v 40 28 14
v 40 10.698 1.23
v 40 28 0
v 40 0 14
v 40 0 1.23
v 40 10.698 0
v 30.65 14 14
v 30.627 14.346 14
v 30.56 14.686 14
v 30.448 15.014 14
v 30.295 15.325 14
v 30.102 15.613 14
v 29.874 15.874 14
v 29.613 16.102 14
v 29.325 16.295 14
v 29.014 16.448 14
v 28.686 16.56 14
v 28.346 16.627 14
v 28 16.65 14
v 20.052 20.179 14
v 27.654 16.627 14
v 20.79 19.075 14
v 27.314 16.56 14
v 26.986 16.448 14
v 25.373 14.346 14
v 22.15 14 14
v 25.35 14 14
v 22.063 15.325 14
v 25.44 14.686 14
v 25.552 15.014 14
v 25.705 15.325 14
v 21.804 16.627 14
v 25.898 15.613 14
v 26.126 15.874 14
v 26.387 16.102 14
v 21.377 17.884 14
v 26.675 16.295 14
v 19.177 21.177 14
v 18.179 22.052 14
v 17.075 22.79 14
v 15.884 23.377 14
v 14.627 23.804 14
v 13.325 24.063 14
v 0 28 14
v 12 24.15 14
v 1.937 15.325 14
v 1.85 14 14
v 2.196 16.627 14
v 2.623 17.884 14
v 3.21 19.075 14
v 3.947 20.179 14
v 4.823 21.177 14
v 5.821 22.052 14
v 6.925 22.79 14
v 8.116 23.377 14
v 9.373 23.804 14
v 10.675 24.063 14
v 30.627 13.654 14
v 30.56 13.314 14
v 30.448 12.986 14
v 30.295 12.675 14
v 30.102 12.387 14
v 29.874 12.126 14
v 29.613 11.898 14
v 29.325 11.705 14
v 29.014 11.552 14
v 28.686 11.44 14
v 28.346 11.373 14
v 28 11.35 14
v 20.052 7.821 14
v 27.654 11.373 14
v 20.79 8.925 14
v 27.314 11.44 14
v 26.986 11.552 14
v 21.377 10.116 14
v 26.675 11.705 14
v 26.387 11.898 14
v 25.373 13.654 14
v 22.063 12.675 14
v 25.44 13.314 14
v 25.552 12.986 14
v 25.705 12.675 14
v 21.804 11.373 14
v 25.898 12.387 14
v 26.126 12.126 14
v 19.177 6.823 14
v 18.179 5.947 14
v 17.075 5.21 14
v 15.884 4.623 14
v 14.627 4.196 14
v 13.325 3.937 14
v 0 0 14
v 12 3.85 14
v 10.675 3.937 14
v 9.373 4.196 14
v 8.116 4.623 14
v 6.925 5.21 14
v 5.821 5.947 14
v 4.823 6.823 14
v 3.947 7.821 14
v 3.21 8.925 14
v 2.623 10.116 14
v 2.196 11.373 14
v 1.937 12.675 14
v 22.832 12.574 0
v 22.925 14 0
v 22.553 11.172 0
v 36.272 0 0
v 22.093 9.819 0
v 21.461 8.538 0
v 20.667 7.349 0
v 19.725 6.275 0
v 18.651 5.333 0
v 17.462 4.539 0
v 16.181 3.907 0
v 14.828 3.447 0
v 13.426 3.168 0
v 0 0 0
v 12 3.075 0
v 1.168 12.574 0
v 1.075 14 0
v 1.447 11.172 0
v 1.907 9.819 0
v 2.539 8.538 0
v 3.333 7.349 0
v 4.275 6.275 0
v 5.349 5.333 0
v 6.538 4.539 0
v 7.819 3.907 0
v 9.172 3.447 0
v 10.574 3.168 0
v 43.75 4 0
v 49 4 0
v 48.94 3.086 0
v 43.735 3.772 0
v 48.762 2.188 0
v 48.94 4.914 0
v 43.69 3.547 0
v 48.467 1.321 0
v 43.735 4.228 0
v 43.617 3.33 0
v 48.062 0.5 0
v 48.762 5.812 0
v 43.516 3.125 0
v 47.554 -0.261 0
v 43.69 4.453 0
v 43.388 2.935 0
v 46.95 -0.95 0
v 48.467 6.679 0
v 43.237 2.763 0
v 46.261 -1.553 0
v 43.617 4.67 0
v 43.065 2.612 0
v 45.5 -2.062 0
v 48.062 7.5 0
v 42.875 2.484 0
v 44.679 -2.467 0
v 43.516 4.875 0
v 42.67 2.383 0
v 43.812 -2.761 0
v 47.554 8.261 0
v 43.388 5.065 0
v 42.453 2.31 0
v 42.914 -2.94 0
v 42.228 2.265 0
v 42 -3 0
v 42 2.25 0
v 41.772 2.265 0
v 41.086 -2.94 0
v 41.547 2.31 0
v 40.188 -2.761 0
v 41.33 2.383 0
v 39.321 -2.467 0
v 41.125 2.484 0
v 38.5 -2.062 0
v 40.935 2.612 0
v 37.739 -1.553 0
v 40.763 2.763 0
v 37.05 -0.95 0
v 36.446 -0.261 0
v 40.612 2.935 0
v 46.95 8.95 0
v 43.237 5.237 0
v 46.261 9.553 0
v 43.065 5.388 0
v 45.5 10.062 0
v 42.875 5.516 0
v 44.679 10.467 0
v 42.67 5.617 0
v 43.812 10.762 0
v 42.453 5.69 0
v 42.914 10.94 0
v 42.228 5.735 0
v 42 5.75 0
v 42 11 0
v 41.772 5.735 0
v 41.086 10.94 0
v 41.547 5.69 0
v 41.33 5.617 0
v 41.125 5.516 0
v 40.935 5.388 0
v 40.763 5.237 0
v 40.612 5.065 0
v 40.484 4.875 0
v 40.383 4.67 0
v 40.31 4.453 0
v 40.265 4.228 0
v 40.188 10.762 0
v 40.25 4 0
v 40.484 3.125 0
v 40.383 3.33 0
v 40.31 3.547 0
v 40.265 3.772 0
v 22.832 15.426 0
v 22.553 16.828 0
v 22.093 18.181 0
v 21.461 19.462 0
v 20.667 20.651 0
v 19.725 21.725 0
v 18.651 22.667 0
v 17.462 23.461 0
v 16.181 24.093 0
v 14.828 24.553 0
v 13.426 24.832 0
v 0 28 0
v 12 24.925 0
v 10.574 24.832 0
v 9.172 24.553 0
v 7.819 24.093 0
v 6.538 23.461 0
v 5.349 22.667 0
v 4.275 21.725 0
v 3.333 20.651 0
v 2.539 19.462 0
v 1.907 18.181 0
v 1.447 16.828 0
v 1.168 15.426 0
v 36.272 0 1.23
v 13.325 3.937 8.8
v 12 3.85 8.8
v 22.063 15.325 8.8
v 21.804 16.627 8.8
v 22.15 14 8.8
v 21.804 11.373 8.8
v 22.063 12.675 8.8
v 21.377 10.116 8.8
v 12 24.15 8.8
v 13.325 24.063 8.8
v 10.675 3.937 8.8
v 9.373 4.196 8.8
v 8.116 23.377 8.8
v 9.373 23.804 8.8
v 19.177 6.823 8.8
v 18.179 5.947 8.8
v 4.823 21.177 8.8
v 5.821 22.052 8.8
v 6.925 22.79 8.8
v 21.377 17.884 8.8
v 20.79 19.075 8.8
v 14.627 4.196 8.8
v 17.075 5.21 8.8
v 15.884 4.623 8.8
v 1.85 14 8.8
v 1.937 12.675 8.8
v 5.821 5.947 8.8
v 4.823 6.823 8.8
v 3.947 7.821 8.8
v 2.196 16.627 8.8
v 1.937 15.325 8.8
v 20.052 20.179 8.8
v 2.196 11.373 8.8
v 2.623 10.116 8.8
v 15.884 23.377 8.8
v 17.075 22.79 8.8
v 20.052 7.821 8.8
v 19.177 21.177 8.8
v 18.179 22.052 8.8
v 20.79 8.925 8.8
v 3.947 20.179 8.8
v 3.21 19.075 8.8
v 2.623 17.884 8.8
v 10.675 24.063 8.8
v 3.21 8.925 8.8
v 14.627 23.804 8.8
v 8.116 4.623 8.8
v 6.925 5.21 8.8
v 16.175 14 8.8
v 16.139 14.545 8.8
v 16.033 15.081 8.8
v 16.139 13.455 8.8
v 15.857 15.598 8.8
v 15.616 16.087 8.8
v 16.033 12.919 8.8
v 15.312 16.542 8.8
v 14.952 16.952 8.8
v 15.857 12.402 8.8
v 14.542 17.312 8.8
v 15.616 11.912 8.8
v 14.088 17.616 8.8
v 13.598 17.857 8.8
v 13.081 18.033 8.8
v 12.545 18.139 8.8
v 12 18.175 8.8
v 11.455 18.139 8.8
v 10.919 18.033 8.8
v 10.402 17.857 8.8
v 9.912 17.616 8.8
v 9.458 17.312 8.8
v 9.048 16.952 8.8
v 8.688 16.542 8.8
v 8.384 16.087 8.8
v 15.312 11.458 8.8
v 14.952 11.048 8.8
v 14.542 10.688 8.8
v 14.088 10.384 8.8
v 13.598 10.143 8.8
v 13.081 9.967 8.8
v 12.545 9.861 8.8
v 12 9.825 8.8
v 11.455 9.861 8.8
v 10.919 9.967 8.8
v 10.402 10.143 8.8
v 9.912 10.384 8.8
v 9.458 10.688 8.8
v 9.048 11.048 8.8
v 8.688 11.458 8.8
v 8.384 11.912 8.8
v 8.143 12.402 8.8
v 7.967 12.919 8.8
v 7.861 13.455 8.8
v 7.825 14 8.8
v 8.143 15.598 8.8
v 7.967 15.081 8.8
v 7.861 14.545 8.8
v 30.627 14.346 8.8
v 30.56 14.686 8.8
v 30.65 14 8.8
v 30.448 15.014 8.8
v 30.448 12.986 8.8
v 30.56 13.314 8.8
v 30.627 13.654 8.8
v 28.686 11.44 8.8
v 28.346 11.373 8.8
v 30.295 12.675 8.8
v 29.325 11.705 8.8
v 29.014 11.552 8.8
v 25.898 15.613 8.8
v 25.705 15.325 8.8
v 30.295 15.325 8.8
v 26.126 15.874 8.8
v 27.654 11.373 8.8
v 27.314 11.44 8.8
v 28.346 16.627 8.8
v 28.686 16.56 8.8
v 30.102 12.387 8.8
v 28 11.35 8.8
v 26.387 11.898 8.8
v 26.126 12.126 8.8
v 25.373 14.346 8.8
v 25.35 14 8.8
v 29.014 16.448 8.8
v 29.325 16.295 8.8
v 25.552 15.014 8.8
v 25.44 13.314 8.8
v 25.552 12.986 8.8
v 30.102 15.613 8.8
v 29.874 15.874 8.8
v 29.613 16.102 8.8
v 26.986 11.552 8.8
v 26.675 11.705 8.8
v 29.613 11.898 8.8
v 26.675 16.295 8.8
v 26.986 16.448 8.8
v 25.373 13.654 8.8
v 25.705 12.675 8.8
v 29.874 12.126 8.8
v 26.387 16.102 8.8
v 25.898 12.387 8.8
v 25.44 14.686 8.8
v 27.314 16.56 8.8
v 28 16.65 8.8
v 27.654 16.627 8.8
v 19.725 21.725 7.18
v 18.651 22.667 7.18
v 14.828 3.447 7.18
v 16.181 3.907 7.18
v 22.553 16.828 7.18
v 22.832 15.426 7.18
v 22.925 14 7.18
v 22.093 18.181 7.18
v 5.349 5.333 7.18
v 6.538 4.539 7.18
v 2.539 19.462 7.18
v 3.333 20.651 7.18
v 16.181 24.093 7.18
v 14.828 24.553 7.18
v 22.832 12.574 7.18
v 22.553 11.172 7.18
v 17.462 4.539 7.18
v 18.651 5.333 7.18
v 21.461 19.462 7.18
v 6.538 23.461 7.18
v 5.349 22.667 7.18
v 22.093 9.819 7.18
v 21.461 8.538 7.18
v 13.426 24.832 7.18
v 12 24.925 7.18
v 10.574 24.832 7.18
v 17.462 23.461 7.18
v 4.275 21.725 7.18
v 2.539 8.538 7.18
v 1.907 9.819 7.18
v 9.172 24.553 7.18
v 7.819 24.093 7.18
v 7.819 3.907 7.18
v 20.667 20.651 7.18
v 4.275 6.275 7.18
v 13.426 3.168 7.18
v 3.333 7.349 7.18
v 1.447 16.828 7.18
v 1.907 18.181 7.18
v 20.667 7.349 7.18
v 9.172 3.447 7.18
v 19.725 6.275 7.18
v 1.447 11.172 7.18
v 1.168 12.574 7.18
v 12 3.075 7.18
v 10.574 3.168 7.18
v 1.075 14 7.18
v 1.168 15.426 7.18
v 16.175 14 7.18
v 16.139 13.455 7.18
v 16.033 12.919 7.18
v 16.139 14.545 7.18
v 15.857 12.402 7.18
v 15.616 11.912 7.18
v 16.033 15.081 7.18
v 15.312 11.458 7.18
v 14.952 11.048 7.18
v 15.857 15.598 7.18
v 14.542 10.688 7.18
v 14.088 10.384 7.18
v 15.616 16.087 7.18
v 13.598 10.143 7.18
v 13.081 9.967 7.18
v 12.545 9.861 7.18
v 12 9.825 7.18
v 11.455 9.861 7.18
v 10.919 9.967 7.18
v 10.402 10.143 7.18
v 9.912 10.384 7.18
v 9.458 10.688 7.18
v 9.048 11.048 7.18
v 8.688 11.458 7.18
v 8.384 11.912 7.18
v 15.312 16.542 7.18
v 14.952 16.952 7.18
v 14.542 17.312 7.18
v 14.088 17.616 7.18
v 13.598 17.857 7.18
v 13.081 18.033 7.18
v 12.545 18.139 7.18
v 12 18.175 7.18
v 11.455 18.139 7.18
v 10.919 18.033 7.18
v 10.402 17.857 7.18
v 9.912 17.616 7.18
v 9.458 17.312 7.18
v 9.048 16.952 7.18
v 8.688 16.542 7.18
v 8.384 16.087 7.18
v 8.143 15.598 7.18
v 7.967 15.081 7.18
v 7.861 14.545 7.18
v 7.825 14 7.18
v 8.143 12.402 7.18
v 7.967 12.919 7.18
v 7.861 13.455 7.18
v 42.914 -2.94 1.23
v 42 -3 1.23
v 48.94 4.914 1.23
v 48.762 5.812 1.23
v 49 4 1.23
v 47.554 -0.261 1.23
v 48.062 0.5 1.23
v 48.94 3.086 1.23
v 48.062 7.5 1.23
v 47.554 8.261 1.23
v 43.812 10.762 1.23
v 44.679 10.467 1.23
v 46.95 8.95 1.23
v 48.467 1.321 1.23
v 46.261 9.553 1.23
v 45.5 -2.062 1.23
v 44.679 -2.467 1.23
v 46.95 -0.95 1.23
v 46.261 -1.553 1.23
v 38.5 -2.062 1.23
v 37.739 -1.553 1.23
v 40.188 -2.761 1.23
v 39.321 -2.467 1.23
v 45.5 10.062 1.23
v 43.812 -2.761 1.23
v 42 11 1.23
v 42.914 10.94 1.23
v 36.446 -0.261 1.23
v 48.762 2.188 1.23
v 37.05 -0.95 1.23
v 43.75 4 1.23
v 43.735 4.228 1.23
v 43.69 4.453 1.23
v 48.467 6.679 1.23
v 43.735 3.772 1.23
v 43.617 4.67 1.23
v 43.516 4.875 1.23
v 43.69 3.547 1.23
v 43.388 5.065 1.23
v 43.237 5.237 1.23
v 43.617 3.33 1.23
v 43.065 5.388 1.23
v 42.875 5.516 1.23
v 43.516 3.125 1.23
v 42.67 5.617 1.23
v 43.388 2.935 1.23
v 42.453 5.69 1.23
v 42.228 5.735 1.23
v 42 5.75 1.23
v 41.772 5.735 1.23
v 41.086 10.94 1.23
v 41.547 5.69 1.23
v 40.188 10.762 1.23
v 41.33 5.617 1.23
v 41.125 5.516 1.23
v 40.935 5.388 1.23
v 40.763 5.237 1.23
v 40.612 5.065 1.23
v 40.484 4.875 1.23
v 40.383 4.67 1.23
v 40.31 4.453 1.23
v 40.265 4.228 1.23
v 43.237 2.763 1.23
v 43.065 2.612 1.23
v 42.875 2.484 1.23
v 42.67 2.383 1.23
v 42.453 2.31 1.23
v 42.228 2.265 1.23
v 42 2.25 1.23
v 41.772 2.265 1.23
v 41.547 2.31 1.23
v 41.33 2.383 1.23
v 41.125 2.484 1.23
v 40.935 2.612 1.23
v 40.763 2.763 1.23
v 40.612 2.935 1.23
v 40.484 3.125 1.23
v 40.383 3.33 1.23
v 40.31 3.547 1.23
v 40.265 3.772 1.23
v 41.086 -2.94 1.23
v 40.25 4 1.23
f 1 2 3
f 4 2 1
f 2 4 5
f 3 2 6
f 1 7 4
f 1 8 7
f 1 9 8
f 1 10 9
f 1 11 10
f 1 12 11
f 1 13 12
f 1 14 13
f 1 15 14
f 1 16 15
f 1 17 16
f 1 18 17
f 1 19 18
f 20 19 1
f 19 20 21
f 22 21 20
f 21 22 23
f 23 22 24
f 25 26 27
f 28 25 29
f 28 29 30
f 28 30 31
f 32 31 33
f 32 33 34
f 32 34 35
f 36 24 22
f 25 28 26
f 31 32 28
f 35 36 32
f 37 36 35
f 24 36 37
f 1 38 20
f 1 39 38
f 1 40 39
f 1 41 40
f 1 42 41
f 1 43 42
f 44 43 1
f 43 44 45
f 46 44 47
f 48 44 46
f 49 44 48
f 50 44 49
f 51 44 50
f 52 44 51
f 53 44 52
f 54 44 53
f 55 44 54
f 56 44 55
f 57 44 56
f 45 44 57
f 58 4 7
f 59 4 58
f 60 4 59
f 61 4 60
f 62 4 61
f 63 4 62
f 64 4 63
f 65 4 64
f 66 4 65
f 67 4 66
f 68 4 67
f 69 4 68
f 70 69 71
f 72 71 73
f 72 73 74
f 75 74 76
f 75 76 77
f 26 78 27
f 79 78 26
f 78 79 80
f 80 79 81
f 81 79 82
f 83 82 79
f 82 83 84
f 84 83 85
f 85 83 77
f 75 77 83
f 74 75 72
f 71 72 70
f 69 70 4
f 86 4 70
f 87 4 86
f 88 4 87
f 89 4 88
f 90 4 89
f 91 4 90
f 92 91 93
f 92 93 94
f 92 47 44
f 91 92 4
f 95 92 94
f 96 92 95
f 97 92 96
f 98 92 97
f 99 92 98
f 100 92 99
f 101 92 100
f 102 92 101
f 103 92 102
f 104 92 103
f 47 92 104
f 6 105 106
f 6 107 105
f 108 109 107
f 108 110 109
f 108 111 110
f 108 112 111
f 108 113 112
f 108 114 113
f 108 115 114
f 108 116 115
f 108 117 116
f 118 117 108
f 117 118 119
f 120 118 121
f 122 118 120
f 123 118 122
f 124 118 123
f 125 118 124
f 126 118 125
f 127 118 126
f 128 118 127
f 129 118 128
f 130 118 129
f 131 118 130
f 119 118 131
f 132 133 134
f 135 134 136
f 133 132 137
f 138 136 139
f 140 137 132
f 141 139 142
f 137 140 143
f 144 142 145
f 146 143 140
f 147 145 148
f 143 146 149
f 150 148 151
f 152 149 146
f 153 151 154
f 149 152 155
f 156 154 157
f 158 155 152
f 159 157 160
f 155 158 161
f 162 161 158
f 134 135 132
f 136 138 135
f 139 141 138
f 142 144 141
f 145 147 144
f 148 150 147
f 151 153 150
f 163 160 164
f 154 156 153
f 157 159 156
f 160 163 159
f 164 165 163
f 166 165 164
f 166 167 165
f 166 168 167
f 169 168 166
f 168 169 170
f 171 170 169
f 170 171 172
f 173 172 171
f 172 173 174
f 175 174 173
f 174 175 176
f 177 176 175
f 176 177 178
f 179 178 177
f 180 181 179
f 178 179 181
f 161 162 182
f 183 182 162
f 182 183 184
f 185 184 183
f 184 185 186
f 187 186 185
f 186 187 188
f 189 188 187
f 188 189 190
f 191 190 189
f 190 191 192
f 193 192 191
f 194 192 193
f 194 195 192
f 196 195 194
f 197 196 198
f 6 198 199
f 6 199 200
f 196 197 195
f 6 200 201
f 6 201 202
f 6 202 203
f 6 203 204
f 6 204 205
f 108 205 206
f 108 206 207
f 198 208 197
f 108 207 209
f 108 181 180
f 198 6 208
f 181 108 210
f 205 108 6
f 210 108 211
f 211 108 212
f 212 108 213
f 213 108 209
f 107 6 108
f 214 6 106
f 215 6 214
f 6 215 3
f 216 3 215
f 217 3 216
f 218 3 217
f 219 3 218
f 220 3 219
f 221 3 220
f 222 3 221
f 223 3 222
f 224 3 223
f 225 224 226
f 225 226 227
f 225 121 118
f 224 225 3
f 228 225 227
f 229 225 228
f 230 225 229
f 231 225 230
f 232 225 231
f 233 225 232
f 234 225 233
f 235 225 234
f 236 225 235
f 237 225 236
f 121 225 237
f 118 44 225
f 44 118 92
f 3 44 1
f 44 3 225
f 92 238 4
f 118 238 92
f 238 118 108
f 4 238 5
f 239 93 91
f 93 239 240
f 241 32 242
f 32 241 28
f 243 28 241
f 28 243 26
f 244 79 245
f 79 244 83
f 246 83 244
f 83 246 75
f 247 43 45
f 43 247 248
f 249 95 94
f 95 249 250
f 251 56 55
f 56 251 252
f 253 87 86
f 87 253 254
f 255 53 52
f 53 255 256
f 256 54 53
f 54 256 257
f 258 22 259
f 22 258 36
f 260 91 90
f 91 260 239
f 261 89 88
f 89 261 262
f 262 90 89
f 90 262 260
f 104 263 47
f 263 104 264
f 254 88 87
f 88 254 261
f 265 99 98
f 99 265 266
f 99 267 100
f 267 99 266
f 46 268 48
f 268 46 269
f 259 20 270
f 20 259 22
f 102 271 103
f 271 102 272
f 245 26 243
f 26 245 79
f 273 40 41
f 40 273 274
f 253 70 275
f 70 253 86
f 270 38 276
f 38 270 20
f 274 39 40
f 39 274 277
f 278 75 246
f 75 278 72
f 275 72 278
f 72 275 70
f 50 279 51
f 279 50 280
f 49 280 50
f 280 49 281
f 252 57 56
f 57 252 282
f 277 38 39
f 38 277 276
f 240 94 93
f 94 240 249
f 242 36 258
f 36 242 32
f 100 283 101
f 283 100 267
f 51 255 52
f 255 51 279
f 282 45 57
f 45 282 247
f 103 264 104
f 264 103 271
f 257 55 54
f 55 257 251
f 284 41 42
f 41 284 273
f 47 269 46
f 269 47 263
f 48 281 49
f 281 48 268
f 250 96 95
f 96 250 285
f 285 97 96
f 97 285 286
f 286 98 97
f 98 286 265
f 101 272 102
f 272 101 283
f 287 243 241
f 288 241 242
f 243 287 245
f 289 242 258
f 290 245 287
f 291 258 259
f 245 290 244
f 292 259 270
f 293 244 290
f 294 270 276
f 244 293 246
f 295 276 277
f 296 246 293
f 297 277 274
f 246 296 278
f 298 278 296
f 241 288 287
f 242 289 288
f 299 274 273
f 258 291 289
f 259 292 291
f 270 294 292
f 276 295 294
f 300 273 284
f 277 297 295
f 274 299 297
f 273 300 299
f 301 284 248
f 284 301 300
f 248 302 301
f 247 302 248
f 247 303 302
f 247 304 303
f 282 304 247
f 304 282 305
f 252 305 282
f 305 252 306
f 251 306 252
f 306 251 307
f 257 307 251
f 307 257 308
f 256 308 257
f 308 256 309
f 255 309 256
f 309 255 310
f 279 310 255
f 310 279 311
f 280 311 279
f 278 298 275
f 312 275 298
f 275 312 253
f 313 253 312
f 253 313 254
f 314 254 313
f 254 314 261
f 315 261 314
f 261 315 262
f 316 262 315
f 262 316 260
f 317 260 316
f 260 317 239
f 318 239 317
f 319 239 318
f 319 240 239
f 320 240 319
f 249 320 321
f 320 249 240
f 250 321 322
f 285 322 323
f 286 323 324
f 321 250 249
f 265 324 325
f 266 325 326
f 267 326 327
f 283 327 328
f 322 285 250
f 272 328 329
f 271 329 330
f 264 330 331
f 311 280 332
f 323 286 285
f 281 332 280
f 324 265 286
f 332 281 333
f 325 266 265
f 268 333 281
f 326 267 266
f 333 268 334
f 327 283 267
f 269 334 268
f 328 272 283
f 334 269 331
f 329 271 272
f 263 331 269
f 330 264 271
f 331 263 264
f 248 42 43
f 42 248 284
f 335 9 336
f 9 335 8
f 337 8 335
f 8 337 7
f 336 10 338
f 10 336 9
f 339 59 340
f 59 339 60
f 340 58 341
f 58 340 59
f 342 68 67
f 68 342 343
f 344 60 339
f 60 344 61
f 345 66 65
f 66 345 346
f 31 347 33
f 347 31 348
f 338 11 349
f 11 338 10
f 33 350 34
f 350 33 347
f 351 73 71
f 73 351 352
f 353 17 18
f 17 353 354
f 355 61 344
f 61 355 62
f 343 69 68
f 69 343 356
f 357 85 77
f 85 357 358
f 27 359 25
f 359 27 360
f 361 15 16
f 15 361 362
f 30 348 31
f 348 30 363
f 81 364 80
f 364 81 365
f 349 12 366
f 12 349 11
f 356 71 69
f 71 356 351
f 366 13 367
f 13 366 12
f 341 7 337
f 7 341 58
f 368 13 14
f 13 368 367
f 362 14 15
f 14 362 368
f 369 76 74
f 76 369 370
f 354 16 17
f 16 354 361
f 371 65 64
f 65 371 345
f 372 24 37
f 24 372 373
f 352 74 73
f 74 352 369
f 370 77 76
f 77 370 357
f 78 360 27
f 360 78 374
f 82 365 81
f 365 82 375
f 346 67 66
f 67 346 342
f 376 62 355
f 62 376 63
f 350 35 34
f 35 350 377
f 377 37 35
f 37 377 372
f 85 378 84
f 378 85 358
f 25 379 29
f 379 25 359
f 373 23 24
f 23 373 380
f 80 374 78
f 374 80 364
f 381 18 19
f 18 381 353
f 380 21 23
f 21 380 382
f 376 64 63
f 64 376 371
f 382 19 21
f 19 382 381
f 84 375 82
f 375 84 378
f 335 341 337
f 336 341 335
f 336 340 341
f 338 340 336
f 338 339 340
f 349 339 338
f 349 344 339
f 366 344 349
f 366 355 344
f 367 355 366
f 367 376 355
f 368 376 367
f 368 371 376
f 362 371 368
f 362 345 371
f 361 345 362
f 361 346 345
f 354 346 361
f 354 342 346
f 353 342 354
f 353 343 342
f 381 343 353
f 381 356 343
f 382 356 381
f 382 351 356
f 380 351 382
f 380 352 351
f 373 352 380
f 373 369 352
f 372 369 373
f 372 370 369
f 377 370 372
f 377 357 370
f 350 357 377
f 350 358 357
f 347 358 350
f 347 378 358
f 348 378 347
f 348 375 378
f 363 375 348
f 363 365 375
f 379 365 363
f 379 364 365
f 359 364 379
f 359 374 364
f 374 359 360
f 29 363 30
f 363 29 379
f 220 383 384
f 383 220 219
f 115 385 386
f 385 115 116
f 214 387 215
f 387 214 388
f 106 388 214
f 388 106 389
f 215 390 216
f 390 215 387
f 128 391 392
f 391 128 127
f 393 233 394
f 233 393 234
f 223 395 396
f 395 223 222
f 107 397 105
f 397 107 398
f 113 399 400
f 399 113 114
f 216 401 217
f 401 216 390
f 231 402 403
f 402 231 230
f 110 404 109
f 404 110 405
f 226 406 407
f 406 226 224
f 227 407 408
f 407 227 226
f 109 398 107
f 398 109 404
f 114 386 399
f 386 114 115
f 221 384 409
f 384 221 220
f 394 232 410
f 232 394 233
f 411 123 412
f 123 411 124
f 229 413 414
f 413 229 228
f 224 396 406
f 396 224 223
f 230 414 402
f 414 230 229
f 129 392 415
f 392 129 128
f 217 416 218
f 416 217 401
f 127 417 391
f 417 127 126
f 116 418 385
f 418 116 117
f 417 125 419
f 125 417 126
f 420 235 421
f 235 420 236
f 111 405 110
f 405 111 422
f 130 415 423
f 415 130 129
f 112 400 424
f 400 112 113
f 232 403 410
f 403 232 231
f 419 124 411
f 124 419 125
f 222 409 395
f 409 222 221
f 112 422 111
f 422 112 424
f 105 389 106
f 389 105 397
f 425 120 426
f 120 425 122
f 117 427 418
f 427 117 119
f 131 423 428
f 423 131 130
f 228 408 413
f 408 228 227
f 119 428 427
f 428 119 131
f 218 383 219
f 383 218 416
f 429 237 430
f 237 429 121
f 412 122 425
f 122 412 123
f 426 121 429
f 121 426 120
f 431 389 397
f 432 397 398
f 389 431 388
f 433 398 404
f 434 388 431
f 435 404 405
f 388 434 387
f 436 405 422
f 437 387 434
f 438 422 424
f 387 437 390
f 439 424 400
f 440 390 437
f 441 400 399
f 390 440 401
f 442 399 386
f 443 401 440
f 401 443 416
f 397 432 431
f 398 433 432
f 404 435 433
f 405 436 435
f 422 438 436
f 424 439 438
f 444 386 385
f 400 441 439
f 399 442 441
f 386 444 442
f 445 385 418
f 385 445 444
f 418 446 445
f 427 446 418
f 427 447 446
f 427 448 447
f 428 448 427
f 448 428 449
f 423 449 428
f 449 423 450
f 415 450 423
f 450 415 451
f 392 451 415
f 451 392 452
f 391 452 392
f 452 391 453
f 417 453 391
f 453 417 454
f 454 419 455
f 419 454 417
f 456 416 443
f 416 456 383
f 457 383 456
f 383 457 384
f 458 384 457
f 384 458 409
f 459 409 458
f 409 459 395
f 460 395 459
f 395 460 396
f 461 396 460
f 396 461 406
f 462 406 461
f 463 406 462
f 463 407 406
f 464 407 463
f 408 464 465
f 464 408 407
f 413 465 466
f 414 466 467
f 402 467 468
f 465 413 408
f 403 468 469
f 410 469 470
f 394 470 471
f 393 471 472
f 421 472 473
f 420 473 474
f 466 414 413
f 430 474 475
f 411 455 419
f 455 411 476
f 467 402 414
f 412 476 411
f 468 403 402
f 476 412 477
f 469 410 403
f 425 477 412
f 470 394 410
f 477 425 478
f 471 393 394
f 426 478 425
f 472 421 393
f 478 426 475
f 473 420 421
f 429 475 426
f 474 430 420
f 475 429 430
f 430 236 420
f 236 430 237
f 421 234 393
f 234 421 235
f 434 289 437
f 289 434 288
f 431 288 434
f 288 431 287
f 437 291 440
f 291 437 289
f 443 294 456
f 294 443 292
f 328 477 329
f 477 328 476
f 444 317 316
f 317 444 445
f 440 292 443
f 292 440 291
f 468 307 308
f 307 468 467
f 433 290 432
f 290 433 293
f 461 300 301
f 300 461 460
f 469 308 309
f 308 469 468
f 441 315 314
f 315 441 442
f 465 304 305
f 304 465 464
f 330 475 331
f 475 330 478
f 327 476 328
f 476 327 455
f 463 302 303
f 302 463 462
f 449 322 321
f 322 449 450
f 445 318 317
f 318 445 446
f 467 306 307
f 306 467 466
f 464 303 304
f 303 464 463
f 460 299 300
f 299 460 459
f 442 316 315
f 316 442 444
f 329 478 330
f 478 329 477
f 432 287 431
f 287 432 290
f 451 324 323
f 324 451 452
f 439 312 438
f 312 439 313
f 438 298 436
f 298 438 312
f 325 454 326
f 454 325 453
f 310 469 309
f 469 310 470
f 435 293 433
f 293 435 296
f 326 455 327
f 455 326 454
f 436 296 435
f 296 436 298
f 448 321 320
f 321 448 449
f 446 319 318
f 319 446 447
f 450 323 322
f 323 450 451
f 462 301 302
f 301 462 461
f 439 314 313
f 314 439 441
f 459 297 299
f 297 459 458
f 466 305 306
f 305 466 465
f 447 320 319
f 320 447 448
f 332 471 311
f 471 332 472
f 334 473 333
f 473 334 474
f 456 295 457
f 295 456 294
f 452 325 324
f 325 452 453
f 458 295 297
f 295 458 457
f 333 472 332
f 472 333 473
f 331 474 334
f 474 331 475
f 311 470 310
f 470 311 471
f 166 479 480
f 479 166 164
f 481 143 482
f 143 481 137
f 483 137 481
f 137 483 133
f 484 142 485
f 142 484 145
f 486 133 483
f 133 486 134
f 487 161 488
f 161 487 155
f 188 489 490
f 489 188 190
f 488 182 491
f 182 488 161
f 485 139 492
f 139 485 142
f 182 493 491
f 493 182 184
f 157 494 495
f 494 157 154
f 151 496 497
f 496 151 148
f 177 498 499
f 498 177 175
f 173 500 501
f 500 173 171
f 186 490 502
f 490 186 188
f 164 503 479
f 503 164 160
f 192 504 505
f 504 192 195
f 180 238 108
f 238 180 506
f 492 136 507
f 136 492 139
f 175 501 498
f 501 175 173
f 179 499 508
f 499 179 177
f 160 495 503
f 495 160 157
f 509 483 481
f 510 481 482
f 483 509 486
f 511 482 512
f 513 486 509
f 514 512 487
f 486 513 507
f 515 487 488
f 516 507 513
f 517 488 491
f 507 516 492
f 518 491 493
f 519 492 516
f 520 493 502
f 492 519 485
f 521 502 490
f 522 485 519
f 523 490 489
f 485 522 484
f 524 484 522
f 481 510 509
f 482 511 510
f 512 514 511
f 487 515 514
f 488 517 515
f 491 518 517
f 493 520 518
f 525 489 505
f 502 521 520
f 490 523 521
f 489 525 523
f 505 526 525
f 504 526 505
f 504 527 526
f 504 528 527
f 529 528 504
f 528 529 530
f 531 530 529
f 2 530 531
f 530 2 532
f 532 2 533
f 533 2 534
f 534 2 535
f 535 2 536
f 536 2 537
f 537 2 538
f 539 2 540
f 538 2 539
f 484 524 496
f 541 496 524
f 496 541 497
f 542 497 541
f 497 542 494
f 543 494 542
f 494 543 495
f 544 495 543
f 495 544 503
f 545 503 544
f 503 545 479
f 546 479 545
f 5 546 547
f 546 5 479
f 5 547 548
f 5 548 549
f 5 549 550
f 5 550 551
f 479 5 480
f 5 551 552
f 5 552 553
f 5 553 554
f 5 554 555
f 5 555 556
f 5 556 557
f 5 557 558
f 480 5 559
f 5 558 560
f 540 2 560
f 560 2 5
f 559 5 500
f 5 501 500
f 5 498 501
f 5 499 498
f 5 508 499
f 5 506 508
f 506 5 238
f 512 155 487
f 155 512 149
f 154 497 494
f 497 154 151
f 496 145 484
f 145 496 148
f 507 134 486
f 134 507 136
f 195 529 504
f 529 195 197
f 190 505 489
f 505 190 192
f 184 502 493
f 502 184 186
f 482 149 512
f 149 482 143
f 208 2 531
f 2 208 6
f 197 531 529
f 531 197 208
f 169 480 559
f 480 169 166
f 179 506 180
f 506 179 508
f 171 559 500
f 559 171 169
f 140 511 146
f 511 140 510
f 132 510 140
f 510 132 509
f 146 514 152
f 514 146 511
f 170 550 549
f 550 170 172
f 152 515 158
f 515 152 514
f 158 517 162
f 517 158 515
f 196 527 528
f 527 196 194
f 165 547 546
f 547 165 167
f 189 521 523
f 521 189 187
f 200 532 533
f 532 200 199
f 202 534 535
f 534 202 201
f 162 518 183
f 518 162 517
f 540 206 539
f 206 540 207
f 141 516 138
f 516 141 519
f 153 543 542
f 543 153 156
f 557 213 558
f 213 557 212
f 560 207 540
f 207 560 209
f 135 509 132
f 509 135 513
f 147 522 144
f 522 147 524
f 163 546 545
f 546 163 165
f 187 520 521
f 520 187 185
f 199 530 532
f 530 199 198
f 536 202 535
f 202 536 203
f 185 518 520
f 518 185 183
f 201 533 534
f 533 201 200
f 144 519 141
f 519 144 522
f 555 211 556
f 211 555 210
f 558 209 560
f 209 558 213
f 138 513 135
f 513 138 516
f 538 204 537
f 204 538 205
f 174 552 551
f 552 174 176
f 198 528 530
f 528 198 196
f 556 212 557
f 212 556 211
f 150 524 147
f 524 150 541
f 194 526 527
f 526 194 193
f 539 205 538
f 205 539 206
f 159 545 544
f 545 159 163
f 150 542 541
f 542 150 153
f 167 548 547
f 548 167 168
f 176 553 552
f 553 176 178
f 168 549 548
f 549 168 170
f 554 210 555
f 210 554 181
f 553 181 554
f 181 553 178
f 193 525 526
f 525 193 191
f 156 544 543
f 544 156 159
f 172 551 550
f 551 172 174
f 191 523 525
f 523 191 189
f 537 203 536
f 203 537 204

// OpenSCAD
// file: parameters.scad
// =============================================================================
// Gen-AD Vernier flux-claw dual nano-gap — WOUND-AWARE (HARD GATE)
// Improve Gen-AA: tighter m2m ≤5.5, more copper (155 t), run_clear 0.60
// =============================================================================

wire_awg            = 26;
wire_od             = 0.45;
turns               = 155;      // +10 vs Gen-AA 145
fill                = 0.70;
layers_per_face     = 2;
wind_build_axial    = layers_per_face * wire_od * fill;   // 0.63
wind_build_radial   = 3 * wire_od * fill;                 // 0.945

coil_id_r           = 20.5;
coil_od_r           = 61.0;
span_deg            = 25.0;     // 12 stations; vernier vs 16-pole equiv
former_web          = 1.7;
flange_t            = 0.65;
wall                = 1.2;
slot_w              = 2.4;
mount_hole          = 3.5;
tab_len             = 7.0;

former_bare_h       = former_web + 2 * flange_t;            // 3.0
coil_envelope_h     = former_bare_h + 2 * wind_build_axial; // 4.26

run_clear           = 0.60;
gap_spacer_h        = run_clear + wind_build_axial;         // 1.23
m2m                 = coil_envelope_h + 2 * run_clear;      // 5.46 (beats Gen-AA 6.16)

coil_stations       = 12;
bay_r_in            = coil_id_r - 2.0 - wind_build_radial;
bay_r_out           = coil_od_r + 2.0 + wind_build_radial;
bay_span            = span_deg + 4.0;
bay_offset          = 2.0;
stator_thick        = former_bare_h;
stator_od           = 156.0;
shaft_clear_stator  = 36.0;
coil_mount_r        = 28.0;

// Dual rotors: 8+8 Ø20 vernier poles + 24+24 Ø5 flux claws / edge assists
large_pocket_d      = 20.3;
small_pocket_d      = 5.3;
pocket_h            = 5.2;
large_n             = 8;
R_large             = 50.0;
R_small_inner       = 36.0;     // claw inner
R_small_mid         = 50.0;
R_small_outer       = 64.0;
carrier_od          = 152.0;
carrier_thick       = 7.5;
hub_h               = 10.0;
hub_od              = 30.0;
rotor_b_offset_deg  = 22.5;     // vernier offset

shaft_bore          = 8.35;
bearing_d           = 21.85;
bearing_h           = 7.2;
m3_clear            = 3.5;
bolt_r_inner        = 36.0;
bolt_n_inner        = 6;
flange_bolt_r       = 72.0;
flange_bolt_n       = 6;
brace_r             = 68.0;
brace_d             = 4.3;
brace_n             = 4;

spacer_pad_od       = 14.0;
spacer_pad_id       = m3_clear;
endbell_od          = 156.0;
endbell_thick       = 8.0;
endbell_shaft_clear = 10.0;

$fn = 64;
// main file
// Gen-AD fit coupon — magnet pockets + 608 + spacer height
include <parameters.scad>;
$fn = 48;
block_w = 40; block_d = 28; block_h = 14;
difference() {
    cube([block_w, block_d, block_h]);
    translate([12, block_d/2, block_h - pocket_h])
        cylinder(d=large_pocket_d, h=pocket_h + 0.2);
    translate([28, block_d/2, block_h - pocket_h])
        cylinder(d=small_pocket_d, h=pocket_h + 0.2);
    translate([12, block_d/2, -0.02])
        cylinder(d=bearing_d, h=bearing_h);
    translate([12, block_d/2, -0.1])
        cylinder(d=shaft_bore, h=block_h + 1);
}
translate([block_w + 2, 4, 0])
    difference() {
        cylinder(d=spacer_pad_od, h=gap_spacer_h);
        translate([0, 0, -0.1]) cylinder(d=spacer_pad_id, h=gap_spacer_h + 0.2);
    }
